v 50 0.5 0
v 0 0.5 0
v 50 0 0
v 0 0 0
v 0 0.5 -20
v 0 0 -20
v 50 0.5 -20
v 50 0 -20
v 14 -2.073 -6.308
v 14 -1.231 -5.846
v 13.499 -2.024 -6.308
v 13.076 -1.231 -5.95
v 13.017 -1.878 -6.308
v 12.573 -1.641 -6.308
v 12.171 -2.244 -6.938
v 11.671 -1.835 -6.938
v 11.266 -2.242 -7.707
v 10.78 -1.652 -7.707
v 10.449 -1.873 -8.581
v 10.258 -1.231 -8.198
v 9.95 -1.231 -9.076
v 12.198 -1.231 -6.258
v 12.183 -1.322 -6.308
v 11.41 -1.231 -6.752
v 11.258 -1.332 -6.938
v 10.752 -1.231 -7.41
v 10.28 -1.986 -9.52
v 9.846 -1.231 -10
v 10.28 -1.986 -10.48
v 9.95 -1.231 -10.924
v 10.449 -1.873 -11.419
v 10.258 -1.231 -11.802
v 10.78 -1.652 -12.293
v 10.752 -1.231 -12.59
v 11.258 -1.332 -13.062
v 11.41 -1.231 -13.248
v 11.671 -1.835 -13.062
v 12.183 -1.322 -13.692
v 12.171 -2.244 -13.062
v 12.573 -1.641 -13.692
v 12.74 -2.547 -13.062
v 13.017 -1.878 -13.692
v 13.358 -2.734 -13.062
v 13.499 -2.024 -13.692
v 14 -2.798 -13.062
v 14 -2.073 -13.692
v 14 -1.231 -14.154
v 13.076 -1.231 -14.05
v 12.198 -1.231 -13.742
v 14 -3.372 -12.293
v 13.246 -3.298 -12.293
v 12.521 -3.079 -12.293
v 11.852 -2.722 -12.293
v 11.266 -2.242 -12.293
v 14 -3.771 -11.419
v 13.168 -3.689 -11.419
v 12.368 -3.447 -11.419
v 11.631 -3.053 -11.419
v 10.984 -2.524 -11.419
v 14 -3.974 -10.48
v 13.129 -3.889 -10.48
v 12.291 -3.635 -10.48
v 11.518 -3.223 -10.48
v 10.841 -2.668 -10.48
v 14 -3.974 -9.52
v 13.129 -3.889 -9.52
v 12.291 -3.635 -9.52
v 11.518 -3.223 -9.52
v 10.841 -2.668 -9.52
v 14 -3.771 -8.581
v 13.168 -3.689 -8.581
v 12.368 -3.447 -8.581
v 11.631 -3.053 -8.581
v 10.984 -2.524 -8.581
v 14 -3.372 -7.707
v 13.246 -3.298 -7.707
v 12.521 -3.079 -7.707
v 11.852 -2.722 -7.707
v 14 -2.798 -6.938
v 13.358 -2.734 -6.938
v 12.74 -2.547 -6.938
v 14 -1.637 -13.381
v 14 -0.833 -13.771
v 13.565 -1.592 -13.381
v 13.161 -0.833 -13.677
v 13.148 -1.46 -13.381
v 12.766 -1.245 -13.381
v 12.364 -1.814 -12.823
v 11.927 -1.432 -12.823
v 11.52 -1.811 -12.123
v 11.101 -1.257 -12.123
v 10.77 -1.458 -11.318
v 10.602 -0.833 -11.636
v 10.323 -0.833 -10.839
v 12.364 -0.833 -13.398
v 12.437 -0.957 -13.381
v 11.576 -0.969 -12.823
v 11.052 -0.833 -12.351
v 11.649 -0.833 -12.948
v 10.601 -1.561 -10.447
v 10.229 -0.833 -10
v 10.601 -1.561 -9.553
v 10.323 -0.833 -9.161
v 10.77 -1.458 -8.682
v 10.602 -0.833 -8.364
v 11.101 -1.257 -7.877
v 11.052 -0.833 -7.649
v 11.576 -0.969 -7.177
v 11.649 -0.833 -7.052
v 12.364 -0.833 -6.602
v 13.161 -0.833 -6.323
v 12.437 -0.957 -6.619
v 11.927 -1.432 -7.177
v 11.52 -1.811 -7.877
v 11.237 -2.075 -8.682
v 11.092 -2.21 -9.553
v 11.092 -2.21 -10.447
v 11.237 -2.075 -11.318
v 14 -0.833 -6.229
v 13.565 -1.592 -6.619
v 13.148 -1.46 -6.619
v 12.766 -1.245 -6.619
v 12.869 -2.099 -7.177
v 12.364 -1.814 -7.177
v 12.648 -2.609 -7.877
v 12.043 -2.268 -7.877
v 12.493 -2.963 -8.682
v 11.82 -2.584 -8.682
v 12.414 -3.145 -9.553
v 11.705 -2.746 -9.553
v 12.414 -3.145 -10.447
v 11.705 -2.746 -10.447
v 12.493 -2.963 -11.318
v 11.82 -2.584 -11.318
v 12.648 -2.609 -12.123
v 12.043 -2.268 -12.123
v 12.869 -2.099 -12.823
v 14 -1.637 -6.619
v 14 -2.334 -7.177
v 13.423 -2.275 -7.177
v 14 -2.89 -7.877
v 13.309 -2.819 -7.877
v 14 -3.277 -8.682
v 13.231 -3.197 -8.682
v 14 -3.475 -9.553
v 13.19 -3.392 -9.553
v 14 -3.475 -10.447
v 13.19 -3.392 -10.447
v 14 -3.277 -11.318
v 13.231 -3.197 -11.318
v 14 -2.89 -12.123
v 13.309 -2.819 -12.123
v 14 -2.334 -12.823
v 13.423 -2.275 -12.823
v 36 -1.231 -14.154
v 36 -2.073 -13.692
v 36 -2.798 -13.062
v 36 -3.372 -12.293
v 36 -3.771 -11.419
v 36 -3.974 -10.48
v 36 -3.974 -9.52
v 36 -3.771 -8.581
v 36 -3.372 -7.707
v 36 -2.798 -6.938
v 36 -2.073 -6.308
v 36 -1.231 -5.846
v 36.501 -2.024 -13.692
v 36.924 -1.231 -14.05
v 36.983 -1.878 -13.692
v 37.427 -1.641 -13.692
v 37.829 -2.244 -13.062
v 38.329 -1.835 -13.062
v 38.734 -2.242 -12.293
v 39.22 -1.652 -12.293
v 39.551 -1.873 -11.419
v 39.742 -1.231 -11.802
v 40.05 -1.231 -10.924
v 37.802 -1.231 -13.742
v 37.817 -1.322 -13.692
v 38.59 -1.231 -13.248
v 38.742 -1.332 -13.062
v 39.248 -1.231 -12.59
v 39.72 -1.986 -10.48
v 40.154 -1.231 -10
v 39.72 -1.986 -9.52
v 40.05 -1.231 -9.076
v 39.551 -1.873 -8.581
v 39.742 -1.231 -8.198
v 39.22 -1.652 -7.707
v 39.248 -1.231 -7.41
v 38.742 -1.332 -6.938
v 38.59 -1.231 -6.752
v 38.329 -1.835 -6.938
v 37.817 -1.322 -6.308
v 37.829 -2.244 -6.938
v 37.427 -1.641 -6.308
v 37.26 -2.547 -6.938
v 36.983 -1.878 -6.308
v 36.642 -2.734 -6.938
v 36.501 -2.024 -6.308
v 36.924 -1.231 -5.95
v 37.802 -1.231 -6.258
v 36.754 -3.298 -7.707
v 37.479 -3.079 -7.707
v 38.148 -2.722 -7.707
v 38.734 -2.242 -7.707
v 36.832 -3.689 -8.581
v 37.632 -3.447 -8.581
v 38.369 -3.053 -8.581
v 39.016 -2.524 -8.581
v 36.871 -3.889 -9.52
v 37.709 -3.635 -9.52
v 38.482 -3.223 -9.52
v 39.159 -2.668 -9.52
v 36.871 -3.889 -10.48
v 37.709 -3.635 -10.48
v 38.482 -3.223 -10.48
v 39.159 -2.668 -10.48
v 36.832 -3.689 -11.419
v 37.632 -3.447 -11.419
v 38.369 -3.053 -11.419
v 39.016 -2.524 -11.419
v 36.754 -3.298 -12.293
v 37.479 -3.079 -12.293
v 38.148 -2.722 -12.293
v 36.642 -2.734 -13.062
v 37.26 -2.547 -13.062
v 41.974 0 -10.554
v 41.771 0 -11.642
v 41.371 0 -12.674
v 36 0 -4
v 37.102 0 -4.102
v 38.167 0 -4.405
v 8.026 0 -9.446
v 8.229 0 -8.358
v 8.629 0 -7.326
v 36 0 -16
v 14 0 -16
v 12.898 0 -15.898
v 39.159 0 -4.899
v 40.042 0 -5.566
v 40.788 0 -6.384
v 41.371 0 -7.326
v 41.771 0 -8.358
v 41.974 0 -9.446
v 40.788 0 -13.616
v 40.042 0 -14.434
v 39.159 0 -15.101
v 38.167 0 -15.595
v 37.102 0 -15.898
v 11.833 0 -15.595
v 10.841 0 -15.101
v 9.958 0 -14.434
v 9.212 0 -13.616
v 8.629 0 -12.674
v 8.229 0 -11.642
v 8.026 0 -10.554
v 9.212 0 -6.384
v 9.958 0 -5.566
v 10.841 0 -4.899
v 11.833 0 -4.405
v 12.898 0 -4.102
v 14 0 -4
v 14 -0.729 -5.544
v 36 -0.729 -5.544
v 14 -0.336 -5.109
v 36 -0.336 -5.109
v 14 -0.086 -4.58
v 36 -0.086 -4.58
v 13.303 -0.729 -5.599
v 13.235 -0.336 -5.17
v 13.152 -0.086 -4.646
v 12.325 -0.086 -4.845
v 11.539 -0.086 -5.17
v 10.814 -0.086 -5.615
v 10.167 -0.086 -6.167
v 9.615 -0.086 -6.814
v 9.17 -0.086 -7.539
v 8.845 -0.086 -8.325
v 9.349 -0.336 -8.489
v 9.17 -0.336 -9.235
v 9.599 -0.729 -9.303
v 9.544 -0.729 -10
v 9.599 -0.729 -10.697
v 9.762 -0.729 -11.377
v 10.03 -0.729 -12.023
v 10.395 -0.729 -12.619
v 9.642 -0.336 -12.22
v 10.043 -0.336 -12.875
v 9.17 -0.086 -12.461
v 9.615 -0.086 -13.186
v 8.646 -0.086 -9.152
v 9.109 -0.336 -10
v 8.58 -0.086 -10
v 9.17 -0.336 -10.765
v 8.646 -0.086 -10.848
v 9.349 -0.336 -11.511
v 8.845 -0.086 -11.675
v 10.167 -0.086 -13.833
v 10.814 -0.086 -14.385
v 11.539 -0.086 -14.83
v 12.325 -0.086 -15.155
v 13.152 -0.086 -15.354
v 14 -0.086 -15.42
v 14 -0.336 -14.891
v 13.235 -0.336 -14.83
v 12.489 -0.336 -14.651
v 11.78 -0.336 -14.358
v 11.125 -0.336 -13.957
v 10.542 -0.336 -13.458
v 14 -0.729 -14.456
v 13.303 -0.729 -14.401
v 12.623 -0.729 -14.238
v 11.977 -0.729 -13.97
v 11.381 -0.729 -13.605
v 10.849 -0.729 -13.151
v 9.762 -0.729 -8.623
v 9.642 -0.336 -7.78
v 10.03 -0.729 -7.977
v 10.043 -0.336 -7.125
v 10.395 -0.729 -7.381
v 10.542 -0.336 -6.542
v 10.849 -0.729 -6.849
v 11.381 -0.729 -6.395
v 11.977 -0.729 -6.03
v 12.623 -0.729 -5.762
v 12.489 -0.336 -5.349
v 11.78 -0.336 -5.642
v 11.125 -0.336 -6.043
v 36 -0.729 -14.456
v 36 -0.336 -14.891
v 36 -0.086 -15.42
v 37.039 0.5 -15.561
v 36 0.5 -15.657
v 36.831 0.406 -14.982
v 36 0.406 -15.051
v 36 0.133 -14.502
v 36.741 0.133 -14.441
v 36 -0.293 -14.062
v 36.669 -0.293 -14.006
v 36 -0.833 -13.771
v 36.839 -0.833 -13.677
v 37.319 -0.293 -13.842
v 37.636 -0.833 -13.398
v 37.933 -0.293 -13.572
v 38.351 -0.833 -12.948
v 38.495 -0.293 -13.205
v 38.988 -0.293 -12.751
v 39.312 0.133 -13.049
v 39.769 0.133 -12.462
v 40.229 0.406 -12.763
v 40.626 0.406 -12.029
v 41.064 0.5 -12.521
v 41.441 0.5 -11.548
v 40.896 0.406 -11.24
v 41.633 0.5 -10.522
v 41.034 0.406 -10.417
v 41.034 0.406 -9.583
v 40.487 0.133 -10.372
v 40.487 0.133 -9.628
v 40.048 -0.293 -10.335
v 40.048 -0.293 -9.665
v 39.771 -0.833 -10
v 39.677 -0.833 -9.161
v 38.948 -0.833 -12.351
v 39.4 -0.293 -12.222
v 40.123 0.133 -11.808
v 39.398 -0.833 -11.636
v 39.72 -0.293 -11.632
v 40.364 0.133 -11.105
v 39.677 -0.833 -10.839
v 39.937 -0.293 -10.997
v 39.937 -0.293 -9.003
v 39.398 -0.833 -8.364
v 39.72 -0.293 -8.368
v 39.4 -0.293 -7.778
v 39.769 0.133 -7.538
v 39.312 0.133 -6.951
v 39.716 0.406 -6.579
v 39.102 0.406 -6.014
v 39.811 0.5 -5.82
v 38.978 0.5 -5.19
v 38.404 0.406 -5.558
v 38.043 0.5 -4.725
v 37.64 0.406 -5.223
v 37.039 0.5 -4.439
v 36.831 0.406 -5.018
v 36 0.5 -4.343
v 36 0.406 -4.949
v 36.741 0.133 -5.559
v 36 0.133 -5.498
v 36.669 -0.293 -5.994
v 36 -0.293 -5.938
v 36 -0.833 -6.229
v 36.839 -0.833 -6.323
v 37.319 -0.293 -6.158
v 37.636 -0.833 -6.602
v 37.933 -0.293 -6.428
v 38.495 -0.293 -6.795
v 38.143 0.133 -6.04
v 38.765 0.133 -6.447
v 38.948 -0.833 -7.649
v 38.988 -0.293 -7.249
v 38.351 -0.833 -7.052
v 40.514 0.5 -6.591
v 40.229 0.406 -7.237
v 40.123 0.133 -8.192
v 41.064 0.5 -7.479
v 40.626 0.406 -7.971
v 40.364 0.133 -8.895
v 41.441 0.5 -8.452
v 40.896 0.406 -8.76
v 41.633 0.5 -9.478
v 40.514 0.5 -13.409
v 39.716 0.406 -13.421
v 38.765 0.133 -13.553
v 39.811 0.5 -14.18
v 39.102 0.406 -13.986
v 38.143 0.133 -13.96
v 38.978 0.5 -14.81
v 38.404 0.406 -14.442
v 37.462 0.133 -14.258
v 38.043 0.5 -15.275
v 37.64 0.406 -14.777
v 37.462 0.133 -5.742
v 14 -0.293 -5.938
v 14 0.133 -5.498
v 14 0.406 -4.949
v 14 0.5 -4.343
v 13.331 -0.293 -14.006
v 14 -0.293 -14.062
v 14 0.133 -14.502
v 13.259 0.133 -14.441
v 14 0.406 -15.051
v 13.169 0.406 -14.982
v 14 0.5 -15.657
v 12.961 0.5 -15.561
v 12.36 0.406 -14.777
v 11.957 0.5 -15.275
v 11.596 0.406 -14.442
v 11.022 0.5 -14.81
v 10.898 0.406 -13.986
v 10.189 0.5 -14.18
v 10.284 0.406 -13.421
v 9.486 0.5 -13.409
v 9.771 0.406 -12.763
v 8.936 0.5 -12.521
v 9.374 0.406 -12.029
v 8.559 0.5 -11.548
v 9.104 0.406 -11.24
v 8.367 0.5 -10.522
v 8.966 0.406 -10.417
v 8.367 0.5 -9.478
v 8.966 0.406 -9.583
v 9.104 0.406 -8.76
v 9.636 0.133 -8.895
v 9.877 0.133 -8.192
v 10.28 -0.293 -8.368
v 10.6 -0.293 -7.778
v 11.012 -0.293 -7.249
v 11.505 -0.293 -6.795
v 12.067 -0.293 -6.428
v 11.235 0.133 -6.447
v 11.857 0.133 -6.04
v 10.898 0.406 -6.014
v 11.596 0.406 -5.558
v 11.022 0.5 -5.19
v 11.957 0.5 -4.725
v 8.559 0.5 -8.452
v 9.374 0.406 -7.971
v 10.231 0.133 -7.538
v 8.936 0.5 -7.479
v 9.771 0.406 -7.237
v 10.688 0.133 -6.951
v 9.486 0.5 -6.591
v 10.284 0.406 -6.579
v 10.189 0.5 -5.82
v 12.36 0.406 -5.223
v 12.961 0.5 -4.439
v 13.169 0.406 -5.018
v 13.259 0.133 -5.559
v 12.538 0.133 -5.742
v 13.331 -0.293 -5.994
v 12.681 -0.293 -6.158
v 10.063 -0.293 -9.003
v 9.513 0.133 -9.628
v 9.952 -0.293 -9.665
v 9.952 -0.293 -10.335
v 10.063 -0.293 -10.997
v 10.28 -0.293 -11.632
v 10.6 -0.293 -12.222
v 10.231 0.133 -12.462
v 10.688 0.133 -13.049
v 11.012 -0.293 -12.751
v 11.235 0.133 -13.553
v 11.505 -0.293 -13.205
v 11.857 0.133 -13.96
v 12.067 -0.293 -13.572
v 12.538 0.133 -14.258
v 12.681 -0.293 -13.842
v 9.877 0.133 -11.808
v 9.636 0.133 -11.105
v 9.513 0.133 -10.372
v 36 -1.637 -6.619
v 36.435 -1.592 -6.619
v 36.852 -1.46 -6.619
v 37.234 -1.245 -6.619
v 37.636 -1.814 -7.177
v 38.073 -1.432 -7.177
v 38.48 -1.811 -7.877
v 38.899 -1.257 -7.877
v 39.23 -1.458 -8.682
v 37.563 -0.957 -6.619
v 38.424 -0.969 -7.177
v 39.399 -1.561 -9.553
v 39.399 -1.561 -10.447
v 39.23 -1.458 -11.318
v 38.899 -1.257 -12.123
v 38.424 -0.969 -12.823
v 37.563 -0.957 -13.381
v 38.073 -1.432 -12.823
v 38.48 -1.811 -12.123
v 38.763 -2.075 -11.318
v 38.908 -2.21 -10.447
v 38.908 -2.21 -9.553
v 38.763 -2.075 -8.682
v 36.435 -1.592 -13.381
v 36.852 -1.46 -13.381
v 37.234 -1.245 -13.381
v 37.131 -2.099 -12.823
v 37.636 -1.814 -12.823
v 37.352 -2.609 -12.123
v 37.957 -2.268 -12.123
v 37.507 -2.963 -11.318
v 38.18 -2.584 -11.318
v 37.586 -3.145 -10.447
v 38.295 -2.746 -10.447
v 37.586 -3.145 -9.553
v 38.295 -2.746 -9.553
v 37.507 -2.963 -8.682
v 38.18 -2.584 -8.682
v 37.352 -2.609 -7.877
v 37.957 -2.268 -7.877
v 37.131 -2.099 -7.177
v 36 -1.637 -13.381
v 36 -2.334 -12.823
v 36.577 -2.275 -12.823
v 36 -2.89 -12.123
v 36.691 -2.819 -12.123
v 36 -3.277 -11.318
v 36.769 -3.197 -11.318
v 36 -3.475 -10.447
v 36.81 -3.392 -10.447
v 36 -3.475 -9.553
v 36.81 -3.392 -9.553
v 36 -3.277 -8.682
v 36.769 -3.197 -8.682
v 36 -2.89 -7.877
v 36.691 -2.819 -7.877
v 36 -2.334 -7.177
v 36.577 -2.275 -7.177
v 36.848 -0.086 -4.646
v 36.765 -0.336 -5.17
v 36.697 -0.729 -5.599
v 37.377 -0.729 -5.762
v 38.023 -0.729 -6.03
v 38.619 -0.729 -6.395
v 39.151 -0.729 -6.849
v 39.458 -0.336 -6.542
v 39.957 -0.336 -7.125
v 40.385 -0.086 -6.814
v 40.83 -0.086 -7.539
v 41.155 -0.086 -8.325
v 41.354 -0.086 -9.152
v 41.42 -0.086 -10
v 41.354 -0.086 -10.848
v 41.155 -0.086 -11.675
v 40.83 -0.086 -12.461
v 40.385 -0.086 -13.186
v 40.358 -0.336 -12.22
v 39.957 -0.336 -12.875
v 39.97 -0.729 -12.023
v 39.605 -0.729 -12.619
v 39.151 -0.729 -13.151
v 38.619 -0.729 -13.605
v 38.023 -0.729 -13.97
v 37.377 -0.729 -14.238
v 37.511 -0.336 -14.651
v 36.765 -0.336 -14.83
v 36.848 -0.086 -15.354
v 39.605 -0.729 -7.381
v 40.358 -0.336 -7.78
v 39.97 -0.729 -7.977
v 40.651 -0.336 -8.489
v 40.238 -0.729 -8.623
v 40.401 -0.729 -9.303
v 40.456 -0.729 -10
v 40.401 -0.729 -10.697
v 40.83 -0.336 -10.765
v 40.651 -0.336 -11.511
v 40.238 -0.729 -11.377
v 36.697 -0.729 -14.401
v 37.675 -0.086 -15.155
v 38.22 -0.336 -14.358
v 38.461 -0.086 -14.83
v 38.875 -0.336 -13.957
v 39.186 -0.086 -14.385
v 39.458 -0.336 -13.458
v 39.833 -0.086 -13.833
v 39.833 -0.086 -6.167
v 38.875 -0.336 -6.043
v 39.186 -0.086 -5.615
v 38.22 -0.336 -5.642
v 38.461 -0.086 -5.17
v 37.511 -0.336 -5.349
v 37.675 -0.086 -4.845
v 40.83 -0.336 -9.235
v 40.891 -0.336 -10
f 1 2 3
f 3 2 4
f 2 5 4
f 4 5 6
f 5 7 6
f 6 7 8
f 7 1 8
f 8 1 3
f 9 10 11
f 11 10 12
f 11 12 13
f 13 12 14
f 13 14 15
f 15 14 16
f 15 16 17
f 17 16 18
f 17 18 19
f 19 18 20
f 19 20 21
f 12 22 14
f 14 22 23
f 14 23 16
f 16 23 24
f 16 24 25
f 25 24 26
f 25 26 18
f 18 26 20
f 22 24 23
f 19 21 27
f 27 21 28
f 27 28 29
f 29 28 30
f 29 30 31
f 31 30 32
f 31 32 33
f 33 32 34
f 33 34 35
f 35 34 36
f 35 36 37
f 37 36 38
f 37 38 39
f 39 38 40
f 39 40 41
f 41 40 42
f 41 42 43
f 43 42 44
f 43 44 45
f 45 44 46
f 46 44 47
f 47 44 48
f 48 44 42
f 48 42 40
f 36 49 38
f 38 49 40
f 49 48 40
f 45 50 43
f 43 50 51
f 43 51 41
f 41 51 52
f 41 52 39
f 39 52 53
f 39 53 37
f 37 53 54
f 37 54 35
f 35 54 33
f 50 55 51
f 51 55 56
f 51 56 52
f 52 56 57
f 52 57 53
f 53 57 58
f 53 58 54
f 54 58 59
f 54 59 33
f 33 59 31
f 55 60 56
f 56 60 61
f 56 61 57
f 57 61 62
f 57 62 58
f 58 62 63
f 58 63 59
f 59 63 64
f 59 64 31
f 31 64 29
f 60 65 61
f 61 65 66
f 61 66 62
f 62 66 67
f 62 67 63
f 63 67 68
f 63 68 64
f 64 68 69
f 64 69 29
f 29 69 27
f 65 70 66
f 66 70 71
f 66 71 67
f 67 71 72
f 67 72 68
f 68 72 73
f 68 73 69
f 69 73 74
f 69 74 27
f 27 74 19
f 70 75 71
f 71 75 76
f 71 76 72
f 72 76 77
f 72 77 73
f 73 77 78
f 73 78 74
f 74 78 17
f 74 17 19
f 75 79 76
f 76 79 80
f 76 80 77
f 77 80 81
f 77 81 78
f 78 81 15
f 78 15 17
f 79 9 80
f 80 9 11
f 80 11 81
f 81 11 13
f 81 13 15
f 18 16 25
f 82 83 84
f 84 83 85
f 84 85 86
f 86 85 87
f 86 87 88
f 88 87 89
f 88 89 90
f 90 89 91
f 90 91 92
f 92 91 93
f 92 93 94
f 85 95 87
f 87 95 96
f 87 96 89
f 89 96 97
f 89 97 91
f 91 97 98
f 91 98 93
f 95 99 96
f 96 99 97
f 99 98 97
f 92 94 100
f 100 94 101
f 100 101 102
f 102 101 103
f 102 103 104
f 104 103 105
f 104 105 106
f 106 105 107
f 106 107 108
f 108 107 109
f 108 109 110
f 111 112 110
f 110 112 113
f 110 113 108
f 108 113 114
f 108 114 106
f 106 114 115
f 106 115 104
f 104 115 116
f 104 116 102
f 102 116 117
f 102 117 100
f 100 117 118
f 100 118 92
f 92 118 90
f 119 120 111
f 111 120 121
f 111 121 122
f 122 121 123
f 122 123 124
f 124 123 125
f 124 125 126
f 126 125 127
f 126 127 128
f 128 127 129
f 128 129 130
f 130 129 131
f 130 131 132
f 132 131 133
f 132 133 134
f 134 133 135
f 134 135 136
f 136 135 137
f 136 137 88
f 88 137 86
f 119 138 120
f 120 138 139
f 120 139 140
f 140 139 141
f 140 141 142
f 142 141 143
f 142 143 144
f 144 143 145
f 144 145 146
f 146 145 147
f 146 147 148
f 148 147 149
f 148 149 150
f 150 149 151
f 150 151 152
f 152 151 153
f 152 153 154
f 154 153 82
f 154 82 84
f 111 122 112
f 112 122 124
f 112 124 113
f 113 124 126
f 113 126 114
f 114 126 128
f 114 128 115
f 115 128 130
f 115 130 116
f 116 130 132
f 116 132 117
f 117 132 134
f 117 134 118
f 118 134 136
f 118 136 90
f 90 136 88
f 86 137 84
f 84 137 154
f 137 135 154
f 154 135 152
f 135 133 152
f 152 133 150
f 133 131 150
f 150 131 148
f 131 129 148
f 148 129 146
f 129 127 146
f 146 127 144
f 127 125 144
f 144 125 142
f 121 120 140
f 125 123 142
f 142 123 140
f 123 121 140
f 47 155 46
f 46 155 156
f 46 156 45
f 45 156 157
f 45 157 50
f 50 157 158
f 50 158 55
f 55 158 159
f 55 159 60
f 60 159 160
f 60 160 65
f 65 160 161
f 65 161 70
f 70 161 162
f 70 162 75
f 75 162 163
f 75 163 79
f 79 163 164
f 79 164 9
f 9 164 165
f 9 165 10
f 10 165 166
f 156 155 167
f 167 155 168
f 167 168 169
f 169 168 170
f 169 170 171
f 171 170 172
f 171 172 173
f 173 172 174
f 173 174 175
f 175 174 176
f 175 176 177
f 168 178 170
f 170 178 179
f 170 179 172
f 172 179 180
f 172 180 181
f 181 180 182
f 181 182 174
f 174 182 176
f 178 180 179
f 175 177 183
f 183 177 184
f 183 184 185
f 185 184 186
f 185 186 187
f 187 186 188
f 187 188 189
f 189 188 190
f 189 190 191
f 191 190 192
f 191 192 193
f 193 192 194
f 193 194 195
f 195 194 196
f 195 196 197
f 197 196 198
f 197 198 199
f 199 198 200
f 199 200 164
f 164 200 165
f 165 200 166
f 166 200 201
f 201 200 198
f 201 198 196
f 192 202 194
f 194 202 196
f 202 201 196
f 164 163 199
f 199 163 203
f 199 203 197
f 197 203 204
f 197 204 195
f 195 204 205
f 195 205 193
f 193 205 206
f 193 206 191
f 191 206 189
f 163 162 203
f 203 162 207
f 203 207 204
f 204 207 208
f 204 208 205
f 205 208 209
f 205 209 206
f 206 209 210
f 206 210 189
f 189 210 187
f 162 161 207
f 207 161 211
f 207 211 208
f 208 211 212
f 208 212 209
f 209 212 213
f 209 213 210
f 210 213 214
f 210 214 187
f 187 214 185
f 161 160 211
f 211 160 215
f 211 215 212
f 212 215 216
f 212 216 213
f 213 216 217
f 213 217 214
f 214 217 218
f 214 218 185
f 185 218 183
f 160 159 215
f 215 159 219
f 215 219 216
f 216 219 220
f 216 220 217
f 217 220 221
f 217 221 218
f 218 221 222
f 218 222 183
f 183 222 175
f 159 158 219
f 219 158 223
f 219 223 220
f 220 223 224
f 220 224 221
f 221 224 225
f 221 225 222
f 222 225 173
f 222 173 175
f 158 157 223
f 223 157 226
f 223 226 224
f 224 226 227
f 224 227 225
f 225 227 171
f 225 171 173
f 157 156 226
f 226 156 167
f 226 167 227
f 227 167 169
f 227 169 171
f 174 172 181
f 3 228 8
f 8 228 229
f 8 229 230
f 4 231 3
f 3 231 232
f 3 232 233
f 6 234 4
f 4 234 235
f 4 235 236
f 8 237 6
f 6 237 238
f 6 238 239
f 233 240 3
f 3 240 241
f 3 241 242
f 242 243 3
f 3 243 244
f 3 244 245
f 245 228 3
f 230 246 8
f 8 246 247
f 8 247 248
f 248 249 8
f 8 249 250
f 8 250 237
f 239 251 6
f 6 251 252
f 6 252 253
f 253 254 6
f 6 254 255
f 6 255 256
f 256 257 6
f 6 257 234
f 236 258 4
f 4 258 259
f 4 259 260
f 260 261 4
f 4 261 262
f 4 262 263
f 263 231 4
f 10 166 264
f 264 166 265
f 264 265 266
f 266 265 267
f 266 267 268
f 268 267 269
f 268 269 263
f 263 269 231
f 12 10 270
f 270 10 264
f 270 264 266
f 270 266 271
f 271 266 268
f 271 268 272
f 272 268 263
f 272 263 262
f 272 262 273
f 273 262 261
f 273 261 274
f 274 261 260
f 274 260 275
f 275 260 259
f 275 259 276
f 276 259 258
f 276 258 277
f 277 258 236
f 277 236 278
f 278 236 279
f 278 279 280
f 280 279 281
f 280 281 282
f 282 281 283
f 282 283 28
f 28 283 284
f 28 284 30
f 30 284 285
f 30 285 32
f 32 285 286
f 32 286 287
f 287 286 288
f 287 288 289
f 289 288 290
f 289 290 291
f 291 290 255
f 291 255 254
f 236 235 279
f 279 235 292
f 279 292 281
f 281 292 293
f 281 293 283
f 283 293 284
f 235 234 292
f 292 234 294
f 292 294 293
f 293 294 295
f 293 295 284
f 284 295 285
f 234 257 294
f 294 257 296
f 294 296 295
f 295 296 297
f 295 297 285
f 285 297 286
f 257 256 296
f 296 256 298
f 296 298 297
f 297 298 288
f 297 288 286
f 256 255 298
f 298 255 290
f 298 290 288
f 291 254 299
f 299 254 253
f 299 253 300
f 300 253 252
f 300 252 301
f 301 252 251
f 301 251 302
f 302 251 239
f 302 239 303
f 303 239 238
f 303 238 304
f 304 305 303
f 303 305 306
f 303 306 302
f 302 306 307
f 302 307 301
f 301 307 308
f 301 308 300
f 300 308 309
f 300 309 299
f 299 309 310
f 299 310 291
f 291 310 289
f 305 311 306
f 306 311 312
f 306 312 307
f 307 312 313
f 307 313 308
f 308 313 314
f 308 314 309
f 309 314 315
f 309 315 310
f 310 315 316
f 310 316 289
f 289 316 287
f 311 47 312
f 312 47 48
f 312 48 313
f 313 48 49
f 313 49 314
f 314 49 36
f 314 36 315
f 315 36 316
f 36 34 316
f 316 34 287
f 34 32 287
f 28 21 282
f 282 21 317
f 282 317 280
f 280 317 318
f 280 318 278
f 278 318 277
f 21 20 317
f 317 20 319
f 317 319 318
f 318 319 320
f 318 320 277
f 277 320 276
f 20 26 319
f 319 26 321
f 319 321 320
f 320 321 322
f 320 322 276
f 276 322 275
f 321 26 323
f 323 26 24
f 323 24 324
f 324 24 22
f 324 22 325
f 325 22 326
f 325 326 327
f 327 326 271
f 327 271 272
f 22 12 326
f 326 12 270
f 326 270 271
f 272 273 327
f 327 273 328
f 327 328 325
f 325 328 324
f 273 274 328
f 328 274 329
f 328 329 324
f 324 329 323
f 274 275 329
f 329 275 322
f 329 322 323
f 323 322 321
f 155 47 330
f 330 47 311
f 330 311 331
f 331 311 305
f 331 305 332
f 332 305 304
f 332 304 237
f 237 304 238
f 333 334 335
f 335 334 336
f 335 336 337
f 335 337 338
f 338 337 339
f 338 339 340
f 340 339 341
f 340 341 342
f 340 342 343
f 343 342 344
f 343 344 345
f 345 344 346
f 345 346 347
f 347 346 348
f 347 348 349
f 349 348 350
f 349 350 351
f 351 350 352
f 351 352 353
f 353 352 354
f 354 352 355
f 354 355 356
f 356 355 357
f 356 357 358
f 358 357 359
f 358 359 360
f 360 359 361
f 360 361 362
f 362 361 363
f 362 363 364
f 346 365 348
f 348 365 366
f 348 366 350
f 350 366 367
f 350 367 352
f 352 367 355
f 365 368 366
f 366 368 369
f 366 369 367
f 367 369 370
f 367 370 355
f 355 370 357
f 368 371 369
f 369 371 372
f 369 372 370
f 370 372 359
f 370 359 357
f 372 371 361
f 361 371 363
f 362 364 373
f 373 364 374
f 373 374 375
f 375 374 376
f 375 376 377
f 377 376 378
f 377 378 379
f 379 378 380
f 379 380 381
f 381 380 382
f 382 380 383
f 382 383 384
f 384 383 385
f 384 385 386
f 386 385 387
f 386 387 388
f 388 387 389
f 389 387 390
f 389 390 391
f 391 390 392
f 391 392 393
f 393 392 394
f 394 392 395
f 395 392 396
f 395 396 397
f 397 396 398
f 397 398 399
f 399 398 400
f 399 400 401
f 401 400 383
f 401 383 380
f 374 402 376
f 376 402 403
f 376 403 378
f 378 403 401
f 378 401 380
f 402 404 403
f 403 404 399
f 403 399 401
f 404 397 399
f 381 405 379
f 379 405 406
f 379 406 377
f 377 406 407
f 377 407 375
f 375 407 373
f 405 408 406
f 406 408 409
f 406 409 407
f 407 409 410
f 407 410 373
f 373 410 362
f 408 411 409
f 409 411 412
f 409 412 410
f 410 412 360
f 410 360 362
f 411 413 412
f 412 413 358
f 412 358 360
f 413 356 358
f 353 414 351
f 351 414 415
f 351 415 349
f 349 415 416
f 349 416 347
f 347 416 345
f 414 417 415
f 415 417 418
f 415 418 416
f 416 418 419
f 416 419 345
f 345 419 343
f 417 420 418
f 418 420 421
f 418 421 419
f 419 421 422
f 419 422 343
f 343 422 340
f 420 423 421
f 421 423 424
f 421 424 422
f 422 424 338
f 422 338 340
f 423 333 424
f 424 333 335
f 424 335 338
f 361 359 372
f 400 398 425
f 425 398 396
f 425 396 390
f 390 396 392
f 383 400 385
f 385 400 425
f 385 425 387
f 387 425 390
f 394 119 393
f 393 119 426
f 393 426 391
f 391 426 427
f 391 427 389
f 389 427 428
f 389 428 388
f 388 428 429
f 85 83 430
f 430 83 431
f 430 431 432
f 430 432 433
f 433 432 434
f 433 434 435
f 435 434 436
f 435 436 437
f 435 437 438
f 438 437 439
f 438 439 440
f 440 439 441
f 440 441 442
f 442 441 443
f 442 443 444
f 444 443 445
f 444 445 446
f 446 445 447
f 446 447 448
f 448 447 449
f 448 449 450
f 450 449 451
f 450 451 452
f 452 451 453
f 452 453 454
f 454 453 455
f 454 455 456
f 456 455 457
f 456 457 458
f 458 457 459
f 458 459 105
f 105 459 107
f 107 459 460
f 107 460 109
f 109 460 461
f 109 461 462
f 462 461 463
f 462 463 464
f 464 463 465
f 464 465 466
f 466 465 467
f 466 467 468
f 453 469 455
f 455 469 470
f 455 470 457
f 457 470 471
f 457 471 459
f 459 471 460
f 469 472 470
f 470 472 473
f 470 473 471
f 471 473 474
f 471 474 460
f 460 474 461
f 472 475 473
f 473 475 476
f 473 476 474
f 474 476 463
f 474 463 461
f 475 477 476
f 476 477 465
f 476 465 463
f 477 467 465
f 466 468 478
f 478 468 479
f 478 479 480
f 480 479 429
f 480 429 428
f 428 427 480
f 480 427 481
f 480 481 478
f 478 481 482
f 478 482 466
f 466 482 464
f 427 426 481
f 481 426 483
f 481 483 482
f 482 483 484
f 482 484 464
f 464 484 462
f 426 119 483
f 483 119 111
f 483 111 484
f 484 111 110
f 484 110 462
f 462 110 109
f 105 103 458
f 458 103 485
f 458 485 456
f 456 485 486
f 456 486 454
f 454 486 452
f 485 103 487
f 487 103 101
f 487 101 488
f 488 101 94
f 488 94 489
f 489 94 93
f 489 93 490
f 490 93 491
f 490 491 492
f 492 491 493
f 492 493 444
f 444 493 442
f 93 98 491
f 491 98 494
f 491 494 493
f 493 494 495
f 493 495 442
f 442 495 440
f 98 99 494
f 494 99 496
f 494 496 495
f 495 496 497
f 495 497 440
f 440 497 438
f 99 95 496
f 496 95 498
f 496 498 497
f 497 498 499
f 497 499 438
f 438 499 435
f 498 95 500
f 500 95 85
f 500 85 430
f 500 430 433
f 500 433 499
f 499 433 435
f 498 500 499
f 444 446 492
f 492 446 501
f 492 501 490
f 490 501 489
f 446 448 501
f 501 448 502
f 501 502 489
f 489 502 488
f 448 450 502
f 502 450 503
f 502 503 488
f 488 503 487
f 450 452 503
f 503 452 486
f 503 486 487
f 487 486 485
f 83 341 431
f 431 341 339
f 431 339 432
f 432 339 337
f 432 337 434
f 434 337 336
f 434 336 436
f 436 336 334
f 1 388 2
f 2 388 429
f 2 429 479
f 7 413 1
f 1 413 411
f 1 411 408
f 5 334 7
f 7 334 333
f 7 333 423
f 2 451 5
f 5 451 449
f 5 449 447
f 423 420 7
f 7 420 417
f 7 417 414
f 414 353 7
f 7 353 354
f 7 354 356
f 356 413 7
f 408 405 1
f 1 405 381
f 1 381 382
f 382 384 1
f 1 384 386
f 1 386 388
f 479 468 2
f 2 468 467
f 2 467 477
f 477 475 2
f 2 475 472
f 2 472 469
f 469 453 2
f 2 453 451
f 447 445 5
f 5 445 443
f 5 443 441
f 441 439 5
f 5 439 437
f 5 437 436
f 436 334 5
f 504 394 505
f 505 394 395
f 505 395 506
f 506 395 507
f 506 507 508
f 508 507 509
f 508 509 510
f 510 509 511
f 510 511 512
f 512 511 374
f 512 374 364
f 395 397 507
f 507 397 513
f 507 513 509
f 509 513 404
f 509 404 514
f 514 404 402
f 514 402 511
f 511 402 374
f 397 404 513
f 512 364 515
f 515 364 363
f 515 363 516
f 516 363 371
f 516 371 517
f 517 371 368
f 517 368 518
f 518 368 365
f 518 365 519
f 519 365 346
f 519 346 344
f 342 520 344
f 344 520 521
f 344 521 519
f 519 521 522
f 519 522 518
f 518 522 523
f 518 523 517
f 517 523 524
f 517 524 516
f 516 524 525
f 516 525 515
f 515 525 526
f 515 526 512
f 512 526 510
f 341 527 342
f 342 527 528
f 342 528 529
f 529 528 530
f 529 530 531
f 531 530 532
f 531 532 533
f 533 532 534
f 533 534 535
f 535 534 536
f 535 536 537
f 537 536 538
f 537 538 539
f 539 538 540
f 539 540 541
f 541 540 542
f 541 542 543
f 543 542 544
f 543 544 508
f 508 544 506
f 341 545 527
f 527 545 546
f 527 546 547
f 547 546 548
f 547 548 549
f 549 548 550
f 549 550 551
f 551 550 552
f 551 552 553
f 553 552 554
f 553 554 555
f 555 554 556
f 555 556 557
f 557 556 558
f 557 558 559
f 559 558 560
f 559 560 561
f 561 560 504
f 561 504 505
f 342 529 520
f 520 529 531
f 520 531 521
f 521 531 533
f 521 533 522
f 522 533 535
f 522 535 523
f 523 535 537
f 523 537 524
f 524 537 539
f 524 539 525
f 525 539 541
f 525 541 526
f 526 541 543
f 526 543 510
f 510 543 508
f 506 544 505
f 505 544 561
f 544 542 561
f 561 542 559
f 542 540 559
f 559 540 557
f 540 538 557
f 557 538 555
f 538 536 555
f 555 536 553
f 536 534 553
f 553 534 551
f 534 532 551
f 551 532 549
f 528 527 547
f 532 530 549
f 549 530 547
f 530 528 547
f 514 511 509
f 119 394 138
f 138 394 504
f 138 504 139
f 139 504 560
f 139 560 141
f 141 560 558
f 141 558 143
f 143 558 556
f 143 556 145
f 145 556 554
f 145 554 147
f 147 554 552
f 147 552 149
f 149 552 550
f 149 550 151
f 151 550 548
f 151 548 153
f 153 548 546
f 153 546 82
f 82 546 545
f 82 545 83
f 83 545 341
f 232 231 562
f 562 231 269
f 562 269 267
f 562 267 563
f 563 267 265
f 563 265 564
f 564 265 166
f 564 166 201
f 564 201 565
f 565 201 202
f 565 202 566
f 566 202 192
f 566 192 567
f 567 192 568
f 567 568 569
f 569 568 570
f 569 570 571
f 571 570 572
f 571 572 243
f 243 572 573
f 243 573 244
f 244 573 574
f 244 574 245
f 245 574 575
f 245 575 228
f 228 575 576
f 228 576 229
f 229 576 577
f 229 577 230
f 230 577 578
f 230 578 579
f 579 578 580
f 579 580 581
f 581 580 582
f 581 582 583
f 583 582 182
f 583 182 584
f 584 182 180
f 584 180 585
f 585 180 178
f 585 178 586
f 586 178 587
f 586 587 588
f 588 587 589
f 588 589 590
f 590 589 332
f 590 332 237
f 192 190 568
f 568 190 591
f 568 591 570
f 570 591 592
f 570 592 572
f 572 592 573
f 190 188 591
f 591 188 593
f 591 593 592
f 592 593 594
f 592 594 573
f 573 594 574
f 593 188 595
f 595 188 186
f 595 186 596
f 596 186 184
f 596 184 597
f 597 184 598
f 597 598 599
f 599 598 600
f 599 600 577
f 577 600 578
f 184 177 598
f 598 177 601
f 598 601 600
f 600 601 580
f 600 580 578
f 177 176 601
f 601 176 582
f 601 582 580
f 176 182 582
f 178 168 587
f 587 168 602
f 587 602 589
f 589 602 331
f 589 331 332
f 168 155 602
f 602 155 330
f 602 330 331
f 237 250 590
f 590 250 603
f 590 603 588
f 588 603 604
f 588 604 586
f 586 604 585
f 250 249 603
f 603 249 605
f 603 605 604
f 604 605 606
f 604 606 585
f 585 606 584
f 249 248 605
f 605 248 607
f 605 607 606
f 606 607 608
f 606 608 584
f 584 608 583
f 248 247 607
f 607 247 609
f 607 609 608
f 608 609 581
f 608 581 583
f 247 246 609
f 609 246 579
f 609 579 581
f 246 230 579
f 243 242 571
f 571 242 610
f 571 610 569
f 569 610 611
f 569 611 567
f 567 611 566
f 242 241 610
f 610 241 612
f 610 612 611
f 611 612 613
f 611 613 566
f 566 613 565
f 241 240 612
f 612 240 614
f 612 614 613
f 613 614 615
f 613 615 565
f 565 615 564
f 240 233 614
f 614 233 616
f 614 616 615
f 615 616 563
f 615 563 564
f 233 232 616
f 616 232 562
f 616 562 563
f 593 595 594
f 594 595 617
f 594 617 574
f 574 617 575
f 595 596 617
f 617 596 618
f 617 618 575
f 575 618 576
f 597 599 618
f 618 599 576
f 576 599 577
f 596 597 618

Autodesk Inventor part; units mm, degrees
ref_plane "YZ Plane" through (0, 0, 0) normal (1, 0, 0) x (0, 1, 0)
ref_plane "XZ Plane" through (0, 0, 0) normal (0, 1, 0) x (-1, 0, 0)
sketch "Sketch1" plane through (0, 0, 0) normal (0, 1, 0) x (-1, 0, 0)
  line L0 (0, 0) -> (-50, 0)
  line L1 (-50, 0) -> (-50, -20)
  line L2 (-50, -20) -> (0, -20)
  line L3 (0, -20) -> (0, 0)
  dimension "d0" = 50
  dimension "d1" = 20
extrude "Plate1" add sketch "Sketch1" along normal blind 0.5
sketch "Sketch2" plane through (0, 0.5, 0) normal (0, 1, 0) x (1, 0, 0)
  line L0 (14, 10) -> (36, 10) construction
  line L1 (14, 14) -> (36, 14)
  line L2 (36, 6) -> (14, 6)
  arc A0 (14, 14) -> (14, 6) centre (14, 10) ccw
  arc A1 (36, 6) -> (36, 14) centre (36, 10) ccw
  line L3 (0, 0) -> (0, 20) projected
  line L4 (50, 0) -> (0, 0) projected
  point P0 (25, 10)
  point P1 (40, 10)
  point P2 (10, 10)
  dimension "d3" = 8
  dimension "d4" = 30
  dimension "d5" = 25
  dimension "d6" = 10
extrude "Extrusion1" cut sketch "Sketch2" against normal blind 0.5
ref_plane "Work Plane1" through (36, 0.5, -6) normal (0, -1, 0) x (-1, 0, 0)
sketch "Sketch3" plane through (36, 0.5, -6) normal (0, -1, 0) x (-1, 0, 0)
  line L0 (0, 0) -> (22, 0) construction
  arc A0 (22, 0) -> (22, 8) centre (22, 4) ccw construction
  arc A1 (0, 8) -> (0, 0) centre (0, 4) ccw construction
  line L1 (22, 4) -> (0, 4) construction
  line L2 (26, 4) -> (-4, 4)
  arc A2 (22, 0) -> (26, 4) centre (22, 4) ccw
  arc A3 (0, 8) -> (0, 0) centre (0, 4) ccw projected
  line L3 (22, 0) -> (0, 0)
  arc A4 (-4, 4) -> (0, 0) centre (0, 4) ccw
  line L4 (26, 4) -> (26.5, 4)
  arc A5 (22, -0.5) -> (26.5, 4) centre (22, 4) ccw
  line L5 (22, -0.5) -> (0, -0.5)
  arc A6 (-4.5, 4) -> (0, -0.5) centre (0, 4) ccw
  line L6 (-4, 4) -> (-4.5, 4)
  point P0 (36, -6)
  dimension "d9" = 0.5
revolve "Revolution1" add sketch "Sketch3" angle 180 about axis through (10, 0.5, -10) along (1, 0, 0) contours L4 A5 L5 A6 L6 A3 L3 A2
fillet "Fillet1" radius 2 10 edges at (38.8284, 0.5, -7.1716) (38.8284, 0.5, -12.8284) (25, 0.5, -6) (25, 0.5, -14) (11.1716, 0.5, -7.1716) (11.1716, 0.5, -12.8284) (40.4721, 0, -10) (25, 0, -5.5279) (25, 0, -14.4721) (9.5279, 0, -10)
equation "\"d7\" = Thickness"
equation "\"d9\" = Thickness"
equation "\"d2\" = Thickness"
equation "\"BendRadius\" = Thickness"
equation "\"BendReliefWidth\" = Thickness"
equation "\"BendReliefDepth\" = 0.5 * Thickness"
equation "\"CornerReliefSize\" = 4 * Thickness"
equation "\"MinimumRemnant\" = 2 * Thickness"
equation "\"TransitionRadius\" = BendRadius"
equation "\"JacobiRadiusSize\" = BendRadius"
equation "\"GapSize\" = Thickness"
equation "\"Thickness\" = 0.5"
properties part number "CE-4.1.4"
